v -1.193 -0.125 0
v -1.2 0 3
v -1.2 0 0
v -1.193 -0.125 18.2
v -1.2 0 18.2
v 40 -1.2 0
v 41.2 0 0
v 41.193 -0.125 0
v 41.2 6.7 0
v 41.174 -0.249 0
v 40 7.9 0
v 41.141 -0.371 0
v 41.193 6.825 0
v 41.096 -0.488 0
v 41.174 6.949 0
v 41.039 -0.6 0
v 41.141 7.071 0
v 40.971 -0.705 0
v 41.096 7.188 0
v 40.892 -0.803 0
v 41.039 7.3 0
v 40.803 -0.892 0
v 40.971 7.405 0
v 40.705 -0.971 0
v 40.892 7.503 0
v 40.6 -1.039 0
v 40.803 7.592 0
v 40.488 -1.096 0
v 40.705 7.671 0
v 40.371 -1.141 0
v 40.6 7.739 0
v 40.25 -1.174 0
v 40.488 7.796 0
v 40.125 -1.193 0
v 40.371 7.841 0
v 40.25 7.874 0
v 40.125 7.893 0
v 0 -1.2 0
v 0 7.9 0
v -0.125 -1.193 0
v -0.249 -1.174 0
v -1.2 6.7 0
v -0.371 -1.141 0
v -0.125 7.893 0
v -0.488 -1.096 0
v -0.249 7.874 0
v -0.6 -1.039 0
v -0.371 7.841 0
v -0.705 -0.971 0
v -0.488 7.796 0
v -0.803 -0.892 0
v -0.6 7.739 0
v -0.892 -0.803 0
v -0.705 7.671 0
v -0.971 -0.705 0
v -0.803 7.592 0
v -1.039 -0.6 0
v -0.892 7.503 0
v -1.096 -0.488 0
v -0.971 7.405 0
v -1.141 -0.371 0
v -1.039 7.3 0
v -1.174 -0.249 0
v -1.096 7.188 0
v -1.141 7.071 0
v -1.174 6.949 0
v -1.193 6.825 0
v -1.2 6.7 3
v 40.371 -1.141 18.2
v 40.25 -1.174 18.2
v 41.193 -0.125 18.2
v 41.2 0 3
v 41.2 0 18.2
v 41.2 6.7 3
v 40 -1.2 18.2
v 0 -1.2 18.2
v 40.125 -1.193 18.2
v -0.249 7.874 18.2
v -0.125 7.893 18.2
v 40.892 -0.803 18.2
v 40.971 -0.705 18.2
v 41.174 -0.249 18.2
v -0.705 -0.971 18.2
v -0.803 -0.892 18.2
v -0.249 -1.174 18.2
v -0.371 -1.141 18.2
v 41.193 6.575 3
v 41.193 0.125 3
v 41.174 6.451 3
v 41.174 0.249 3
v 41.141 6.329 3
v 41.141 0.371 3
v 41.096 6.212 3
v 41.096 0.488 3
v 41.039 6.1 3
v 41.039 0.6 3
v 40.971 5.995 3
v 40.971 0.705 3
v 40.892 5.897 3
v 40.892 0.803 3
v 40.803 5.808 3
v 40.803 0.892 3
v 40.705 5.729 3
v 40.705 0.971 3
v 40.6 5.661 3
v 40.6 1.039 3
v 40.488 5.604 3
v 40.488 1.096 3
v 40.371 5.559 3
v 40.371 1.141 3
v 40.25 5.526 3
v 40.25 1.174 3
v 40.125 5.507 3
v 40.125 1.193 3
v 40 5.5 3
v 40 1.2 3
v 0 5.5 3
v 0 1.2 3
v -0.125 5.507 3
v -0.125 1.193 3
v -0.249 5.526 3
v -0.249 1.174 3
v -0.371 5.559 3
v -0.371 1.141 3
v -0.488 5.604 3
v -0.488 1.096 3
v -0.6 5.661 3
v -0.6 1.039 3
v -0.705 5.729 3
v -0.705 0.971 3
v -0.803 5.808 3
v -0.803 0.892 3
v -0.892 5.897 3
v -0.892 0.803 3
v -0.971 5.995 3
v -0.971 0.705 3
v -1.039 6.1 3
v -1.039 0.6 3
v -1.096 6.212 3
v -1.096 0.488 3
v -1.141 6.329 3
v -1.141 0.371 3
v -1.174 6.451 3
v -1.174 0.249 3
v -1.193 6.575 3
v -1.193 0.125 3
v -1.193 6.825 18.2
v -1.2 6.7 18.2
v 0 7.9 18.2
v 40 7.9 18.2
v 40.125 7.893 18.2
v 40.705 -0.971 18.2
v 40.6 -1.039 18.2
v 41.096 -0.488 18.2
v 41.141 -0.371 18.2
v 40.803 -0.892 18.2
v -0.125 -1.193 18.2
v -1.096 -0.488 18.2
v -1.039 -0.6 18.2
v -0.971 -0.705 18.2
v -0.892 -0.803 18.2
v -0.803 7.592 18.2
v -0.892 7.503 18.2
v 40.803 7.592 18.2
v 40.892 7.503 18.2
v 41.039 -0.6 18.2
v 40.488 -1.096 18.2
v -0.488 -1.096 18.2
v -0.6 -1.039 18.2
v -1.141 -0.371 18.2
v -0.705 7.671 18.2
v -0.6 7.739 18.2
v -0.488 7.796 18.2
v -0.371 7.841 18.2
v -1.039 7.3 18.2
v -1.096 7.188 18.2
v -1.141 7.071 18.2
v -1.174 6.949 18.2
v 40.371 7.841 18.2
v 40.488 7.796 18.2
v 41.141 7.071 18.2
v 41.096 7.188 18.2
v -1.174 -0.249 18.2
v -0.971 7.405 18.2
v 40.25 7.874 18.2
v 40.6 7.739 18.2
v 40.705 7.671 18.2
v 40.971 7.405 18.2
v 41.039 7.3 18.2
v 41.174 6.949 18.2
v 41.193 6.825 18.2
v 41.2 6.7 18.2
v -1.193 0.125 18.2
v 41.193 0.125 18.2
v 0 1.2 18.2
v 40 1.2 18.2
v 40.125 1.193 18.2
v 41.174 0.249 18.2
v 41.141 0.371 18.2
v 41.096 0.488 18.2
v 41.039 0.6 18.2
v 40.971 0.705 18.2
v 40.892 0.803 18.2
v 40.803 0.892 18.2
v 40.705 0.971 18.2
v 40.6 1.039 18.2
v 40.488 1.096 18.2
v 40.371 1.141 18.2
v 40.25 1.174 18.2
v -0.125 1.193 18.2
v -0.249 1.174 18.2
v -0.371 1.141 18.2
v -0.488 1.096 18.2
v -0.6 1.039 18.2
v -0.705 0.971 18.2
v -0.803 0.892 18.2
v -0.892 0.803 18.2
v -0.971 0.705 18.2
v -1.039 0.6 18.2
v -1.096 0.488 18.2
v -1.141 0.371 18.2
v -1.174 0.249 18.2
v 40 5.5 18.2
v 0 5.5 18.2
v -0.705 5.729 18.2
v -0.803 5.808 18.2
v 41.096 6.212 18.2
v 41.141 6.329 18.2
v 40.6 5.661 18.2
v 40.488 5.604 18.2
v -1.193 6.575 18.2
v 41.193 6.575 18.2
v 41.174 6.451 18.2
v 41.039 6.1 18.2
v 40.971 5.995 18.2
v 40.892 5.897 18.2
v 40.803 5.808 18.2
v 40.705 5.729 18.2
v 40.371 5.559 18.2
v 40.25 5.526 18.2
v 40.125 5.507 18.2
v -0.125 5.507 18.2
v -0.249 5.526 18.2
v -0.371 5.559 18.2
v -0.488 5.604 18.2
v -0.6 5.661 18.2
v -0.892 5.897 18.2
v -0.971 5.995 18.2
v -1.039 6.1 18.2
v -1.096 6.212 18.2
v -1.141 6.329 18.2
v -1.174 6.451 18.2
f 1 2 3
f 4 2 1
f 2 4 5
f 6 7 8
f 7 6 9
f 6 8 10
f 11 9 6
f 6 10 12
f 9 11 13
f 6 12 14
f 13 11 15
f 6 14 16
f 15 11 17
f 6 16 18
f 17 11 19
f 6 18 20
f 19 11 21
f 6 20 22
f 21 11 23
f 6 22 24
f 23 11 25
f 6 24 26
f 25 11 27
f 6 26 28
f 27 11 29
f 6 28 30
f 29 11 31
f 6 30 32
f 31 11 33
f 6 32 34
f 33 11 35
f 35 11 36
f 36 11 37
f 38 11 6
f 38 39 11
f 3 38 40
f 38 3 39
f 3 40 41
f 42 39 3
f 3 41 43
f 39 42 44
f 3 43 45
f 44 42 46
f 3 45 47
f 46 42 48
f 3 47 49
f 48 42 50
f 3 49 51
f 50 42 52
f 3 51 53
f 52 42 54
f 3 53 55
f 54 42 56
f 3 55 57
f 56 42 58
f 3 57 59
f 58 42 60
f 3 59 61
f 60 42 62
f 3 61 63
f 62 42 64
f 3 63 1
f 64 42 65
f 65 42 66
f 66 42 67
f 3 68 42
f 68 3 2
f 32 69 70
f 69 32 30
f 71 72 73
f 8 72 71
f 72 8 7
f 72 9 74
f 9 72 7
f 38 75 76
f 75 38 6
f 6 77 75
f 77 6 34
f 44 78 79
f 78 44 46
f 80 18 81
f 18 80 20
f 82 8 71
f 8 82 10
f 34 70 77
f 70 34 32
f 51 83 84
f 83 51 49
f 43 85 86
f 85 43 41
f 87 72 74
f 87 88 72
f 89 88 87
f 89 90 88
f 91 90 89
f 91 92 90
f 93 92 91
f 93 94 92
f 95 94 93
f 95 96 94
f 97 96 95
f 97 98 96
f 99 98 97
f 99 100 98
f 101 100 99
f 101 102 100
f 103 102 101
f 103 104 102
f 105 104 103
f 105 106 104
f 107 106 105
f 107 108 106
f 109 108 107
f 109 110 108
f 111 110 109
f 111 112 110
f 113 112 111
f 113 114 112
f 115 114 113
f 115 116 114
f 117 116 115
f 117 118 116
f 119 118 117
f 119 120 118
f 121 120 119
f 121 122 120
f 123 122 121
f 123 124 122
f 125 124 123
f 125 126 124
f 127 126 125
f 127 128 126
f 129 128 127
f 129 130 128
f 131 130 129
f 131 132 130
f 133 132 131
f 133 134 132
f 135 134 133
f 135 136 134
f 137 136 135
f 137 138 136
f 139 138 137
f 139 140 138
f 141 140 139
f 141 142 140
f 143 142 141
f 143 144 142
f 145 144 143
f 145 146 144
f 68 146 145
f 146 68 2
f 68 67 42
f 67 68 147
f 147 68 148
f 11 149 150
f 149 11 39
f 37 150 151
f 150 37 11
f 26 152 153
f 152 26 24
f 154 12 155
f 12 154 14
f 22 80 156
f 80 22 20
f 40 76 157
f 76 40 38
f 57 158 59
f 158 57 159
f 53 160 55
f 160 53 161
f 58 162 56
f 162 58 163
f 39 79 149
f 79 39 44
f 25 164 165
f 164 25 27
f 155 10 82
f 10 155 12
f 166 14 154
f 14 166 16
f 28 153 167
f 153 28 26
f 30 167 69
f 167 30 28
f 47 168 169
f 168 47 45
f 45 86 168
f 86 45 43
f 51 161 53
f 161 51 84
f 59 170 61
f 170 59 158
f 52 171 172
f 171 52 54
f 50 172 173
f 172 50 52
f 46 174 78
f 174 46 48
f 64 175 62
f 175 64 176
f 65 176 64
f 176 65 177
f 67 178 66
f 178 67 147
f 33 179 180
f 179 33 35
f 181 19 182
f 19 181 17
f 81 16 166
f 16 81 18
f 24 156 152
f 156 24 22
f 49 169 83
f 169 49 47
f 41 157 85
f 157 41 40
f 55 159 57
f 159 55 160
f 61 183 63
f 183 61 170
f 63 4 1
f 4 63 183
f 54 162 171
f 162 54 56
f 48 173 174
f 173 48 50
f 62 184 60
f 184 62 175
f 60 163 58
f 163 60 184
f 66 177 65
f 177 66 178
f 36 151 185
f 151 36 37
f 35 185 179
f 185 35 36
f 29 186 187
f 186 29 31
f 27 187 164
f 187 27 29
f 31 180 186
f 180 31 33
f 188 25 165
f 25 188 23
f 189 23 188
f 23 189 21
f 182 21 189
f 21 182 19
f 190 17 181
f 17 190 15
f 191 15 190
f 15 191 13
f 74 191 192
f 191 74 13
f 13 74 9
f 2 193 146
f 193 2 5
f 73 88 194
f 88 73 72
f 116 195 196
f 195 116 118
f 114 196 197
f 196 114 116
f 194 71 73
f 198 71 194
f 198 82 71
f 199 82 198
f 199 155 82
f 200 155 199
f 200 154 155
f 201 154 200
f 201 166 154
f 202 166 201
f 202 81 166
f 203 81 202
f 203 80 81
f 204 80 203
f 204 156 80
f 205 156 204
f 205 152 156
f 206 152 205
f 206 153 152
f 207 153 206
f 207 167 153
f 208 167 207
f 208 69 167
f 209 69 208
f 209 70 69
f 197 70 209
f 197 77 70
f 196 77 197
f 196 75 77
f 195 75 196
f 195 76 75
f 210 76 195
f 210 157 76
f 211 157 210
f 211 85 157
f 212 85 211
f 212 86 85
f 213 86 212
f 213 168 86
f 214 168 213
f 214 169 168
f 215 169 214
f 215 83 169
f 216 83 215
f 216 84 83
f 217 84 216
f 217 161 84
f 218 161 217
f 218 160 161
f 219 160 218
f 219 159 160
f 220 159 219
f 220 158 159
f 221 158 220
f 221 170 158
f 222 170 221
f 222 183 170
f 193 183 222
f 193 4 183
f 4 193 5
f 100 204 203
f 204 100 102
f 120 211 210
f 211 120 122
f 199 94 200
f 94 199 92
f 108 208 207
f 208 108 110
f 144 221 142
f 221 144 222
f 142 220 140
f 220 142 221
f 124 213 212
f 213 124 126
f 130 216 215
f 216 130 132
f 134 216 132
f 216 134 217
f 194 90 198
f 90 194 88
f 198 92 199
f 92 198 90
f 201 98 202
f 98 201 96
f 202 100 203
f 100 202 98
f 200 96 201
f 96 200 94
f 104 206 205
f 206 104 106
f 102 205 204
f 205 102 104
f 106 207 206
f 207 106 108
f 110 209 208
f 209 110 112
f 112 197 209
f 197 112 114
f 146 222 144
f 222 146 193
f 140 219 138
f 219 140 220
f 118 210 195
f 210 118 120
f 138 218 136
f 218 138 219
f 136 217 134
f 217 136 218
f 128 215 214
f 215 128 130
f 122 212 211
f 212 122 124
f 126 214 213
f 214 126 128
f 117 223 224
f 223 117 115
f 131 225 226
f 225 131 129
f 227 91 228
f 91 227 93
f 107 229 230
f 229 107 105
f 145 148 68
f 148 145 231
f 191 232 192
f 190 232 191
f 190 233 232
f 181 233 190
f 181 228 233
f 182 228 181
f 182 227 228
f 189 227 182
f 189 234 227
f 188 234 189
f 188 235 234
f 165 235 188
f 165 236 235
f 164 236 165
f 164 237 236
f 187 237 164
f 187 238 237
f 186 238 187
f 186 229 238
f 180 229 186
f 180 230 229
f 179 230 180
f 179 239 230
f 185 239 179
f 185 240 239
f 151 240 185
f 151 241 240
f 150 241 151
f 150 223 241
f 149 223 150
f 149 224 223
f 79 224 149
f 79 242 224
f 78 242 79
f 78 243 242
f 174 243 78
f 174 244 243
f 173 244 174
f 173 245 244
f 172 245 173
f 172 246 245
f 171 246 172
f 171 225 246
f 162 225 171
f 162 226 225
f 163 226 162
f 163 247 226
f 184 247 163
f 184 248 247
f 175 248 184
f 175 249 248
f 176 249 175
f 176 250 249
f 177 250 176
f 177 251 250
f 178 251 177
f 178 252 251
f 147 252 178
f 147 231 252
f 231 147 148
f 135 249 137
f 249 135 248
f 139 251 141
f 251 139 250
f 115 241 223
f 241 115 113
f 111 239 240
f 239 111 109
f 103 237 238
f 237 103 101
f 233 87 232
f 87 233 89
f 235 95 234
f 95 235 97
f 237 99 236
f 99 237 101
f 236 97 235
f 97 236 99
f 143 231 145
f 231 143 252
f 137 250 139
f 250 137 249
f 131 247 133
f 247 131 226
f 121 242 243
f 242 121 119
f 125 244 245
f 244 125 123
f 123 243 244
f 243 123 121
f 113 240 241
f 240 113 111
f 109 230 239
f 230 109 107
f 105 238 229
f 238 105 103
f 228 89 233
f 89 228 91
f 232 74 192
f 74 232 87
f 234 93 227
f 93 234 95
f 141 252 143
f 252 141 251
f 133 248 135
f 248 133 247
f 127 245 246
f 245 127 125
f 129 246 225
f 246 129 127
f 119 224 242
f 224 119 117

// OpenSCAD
ooze = 0.15; // My machine has a wall ooze (extra width) of about 0.15mm.
nozzle = 0.4; // Extrusion nozzle width
mounting_distance = 40; // Center to center distance between holes
belt_above_surface = 3; // Height of belt above surface.
lock_tab_r = 1.2; // Thickness of the locking strip

$fn=60;
belt_width = 15.2; // Belt width
belt_thickness_meshed = 4; // Thickness of 2 intermeshing belts

module side(h){
hull () {
    cylinder(r=lock_tab_r, h=h);
    translate([mounting_distance,0, 0]) cylinder(r=lock_tab_r, h=h);
}
}
// Uncomment the mirror to get a mirror image of the mounting.
// mirror([0,1,0]) {
sidy = lock_tab_r*2 + ooze*2 + belt_thickness_meshed;
union() {
    hull() {
        side(3);
        translate([0,sidy,0]) side(3);
    }
    side(3 + belt_width);
    translate([0,sidy,0]) side(3 + belt_width);
}
// }
